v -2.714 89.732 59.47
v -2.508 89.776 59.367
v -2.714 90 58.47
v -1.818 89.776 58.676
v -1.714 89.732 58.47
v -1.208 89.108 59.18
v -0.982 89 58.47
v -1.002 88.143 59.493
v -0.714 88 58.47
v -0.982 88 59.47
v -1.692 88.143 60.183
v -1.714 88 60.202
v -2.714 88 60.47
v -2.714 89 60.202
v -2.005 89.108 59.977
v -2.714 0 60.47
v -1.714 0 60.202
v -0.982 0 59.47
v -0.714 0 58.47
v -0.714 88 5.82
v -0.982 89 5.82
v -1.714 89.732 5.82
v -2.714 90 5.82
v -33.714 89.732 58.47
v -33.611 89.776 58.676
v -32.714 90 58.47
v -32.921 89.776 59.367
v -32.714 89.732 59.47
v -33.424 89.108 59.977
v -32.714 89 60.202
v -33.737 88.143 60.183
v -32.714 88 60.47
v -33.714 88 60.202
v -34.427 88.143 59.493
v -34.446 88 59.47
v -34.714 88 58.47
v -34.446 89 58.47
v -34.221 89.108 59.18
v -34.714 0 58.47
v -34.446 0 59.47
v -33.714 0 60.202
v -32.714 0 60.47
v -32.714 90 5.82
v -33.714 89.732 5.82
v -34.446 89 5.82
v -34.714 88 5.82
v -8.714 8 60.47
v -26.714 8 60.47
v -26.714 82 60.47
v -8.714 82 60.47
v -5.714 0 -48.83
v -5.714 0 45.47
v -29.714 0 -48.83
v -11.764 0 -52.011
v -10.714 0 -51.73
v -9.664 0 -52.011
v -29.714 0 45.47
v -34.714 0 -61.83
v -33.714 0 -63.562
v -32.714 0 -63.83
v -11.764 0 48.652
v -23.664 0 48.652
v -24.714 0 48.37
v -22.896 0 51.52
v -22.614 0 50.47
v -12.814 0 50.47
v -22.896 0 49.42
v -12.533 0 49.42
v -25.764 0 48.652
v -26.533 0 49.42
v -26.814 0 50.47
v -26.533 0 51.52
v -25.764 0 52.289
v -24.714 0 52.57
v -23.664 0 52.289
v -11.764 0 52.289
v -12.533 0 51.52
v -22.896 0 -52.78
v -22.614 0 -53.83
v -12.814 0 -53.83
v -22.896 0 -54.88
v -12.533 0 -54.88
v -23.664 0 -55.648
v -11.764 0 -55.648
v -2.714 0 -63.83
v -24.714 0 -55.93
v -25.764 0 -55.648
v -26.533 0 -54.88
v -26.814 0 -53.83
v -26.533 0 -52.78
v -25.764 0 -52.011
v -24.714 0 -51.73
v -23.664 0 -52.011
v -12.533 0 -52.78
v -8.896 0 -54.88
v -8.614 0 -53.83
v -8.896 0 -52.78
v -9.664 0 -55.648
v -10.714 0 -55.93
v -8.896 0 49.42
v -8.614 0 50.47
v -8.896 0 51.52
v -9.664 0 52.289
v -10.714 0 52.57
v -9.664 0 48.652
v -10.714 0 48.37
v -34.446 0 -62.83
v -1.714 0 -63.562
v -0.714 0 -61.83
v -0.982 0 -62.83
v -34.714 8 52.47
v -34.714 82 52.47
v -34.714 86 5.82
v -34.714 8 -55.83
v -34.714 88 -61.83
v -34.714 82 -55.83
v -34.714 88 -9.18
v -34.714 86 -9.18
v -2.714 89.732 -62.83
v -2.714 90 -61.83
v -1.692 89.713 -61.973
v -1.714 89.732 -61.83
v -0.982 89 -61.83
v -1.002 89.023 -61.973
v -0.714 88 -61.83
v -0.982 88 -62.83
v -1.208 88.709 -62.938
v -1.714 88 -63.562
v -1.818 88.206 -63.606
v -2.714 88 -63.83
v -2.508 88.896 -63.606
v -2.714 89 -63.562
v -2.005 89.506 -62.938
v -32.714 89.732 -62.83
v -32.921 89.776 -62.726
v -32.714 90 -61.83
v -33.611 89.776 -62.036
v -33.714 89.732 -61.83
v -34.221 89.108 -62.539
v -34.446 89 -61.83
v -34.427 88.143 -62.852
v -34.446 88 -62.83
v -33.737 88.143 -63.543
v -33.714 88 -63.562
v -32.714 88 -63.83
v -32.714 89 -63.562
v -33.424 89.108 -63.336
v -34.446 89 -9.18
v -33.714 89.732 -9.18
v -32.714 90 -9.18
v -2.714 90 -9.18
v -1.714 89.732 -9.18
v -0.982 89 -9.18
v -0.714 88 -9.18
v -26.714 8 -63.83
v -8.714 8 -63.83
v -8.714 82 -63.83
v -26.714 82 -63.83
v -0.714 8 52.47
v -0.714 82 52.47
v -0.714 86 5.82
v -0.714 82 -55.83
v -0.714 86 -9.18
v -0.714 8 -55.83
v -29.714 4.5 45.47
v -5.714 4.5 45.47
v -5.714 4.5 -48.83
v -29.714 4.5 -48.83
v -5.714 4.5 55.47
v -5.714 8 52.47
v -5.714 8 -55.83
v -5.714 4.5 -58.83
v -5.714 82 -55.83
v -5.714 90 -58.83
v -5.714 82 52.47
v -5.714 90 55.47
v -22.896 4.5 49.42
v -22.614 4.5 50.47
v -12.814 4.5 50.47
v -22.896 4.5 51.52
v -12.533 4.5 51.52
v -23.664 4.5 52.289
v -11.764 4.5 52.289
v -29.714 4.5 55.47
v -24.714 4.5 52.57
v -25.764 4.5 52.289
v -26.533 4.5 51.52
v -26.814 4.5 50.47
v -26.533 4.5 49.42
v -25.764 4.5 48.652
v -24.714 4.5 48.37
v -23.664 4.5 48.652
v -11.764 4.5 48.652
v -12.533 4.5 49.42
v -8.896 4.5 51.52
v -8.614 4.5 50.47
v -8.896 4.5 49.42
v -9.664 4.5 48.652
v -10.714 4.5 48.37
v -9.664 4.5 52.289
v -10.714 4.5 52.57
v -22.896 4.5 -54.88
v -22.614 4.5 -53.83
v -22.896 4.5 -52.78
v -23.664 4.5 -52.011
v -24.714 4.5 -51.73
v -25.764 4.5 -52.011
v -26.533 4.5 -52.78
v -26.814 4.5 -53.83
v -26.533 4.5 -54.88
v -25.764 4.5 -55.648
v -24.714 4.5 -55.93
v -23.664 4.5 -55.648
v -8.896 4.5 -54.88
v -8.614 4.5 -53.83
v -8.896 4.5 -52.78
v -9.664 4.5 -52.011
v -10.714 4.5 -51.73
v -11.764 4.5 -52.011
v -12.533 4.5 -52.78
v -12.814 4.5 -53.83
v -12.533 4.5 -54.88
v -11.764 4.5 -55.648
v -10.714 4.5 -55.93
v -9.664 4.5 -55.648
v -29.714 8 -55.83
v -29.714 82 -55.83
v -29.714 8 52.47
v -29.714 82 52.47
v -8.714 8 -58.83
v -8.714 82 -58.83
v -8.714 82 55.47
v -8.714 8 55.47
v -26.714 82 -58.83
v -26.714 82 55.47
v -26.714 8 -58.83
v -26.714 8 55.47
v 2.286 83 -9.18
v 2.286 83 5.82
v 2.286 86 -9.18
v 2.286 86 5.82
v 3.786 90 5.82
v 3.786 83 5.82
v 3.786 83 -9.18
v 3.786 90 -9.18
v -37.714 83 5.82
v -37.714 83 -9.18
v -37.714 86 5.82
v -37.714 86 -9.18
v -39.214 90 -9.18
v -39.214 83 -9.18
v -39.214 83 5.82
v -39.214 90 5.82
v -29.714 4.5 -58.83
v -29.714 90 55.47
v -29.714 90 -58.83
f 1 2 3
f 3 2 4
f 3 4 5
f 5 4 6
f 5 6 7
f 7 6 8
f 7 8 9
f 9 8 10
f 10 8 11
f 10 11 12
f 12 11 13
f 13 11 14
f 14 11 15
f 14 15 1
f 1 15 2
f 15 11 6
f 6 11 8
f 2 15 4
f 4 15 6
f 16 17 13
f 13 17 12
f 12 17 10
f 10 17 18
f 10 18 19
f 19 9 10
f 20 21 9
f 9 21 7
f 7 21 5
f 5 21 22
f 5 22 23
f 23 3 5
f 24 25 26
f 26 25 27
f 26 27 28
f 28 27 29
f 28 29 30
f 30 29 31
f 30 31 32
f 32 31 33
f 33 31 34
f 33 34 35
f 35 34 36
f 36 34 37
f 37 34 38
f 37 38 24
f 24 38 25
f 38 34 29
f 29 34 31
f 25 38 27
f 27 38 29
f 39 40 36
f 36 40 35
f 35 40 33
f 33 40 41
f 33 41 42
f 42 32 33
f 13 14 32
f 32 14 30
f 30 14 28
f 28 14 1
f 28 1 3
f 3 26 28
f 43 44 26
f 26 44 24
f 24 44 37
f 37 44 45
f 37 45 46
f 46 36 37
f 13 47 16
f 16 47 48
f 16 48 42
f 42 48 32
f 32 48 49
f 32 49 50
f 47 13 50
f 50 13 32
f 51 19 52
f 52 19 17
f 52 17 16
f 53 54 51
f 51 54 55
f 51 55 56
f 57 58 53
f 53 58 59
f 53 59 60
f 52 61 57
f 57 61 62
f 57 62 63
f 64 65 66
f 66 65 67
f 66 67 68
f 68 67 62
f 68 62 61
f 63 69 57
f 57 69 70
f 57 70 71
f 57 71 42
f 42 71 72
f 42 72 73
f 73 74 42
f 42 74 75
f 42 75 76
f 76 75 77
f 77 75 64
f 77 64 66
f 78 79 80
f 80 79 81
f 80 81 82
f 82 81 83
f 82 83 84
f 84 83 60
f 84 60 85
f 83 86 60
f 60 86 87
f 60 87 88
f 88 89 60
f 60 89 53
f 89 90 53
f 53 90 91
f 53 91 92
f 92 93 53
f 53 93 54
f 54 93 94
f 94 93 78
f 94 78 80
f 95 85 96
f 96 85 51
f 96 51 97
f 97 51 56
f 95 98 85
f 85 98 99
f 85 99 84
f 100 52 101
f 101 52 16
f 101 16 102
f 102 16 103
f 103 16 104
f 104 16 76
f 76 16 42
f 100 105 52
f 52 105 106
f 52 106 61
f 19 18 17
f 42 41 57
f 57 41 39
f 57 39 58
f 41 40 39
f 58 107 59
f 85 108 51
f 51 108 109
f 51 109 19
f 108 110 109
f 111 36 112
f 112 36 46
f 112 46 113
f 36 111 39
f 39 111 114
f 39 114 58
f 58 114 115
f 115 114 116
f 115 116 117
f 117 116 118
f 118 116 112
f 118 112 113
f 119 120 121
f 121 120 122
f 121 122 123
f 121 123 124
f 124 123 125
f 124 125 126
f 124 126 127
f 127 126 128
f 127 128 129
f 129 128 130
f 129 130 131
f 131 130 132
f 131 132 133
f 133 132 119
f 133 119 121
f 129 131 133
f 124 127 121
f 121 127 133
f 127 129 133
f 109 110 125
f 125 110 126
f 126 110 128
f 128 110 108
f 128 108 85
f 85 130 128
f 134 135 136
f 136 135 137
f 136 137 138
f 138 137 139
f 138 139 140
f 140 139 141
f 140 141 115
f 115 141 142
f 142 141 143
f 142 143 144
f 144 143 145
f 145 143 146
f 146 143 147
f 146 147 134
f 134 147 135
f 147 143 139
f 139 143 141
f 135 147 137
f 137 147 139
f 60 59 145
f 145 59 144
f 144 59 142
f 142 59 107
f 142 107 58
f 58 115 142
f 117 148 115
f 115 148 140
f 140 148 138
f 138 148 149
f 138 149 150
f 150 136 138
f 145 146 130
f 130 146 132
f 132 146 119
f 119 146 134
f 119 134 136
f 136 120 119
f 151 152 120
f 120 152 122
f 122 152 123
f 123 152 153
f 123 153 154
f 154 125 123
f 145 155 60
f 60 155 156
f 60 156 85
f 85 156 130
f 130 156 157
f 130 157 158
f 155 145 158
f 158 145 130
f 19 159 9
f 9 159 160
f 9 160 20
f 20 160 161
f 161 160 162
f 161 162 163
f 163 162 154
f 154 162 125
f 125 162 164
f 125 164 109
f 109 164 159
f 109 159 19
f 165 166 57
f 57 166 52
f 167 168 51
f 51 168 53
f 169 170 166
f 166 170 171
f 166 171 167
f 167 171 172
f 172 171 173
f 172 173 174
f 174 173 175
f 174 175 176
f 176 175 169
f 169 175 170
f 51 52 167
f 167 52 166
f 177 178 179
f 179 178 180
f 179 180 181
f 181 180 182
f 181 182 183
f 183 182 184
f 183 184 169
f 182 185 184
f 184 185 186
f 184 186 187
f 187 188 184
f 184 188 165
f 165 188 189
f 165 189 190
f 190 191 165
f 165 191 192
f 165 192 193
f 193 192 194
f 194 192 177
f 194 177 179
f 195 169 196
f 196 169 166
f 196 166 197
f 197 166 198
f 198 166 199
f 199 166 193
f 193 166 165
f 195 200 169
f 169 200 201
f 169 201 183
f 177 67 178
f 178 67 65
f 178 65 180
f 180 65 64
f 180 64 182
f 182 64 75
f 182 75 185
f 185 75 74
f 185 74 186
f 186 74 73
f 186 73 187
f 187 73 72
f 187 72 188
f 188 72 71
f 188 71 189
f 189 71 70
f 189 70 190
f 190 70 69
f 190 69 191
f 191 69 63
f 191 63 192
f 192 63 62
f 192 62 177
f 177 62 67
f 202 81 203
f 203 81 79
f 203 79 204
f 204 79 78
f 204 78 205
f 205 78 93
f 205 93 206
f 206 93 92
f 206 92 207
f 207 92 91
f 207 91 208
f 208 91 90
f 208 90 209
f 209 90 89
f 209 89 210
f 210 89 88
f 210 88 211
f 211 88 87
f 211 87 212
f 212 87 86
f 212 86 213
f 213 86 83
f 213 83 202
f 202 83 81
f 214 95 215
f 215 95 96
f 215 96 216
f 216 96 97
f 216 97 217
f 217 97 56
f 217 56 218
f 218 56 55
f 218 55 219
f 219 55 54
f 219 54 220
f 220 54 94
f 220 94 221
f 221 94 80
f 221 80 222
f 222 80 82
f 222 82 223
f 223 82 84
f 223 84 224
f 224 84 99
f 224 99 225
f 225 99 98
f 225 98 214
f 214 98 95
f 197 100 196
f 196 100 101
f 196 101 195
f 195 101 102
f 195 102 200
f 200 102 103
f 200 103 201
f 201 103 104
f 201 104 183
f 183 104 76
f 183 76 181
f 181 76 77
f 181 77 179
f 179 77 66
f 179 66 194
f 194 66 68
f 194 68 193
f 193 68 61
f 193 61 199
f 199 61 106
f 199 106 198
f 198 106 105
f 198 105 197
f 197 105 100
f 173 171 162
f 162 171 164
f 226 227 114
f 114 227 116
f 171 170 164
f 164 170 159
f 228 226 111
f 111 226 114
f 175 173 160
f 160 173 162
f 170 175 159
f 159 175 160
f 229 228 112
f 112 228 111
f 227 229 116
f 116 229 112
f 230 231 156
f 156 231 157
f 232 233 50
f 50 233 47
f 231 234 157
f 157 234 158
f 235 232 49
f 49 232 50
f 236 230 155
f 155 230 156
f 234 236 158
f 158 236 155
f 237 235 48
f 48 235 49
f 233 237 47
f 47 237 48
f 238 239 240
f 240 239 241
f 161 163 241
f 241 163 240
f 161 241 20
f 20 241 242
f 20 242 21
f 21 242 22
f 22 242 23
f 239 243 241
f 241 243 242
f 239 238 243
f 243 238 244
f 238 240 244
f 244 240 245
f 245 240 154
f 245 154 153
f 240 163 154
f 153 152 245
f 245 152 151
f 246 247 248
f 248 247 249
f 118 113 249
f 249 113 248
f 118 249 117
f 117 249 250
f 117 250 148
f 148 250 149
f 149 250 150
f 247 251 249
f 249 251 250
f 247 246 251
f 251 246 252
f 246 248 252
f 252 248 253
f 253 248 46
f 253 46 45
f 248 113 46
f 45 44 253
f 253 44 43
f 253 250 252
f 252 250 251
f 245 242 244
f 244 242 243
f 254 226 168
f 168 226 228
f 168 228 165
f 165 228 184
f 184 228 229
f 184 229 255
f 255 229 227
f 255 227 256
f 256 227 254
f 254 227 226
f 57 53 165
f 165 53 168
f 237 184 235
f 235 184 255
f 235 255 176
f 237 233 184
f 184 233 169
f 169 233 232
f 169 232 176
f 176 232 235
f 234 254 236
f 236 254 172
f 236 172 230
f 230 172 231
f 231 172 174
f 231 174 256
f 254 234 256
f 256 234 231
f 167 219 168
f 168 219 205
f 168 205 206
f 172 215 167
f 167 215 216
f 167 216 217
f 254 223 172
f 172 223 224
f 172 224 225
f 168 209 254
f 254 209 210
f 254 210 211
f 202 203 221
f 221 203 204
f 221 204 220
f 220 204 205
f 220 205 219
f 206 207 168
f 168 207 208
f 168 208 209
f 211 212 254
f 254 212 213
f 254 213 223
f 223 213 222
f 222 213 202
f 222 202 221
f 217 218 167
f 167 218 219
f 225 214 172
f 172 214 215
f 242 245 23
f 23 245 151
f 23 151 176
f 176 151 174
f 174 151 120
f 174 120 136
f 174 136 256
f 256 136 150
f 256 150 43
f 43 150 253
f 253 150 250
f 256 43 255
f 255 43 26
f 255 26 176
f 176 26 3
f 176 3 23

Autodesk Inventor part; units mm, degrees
ref_plane "YZ Plane" through (0, 0, 0) normal (1, 0, 0) x (0, 1, 0)
ref_plane "XZ Plane" through (0, 0, 0) normal (0, 1, 0) x (-1, 0, 0)
ref_plane "XY Plane" through (0, 0, 0) normal (0, 0, 1) x (1, 0, 0)
sketch "Sketch1" plane through (0, 0, 0) normal (0, 1, 0) x (-1, 0, 0)
  point P0 (0, 0)
sketch "Sketch2" plane through (0, 0, 0) normal (0, 1, 0) x (-1, 0, 0)
  line L0 (34.7144, 60.4703) -> (0.7144, 60.4703)
  line L1 (0.7144, 60.4703) -> (0.7144, -63.8297)
  line L2 (0.7144, -63.8297) -> (34.7144, -63.8297)
  line L3 (34.7144, -63.8297) -> (34.7144, 60.4703)
  point P0 (0, 0)
  dimension "d0" = 124.3
  dimension "d1" = 34
extrude "Extrusion1" add sketch "Sketch2" along normal blind 90
sketch "Sketch3" plane through (0, 90, 0) normal (0, 1, 0) x (1, 0, 0)
  line L0 (-34.7144, -60.4703) -> (-0.7144, -60.4703) construction
  line L1 (-0.7144, -60.4703) -> (-0.7144, 63.8297) construction
  line L2 (-0.7144, 63.8297) -> (-34.7144, 63.8297) construction
  line L3 (-34.7144, 63.8297) -> (-34.7144, -60.4703) construction
  line L4 (-29.7144, 58.8297) -> (-5.7144, 58.8297)
  line L5 (-5.7144, 58.8297) -> (-5.7144, -55.4703)
  line L6 (-5.7144, -55.4703) -> (-29.7144, -55.4703)
  line L7 (-29.7144, -55.4703) -> (-29.7144, 58.8297)
  point P0 (0, 0)
  dimension "d4" = 114.3
  dimension "d5" = 24
  dimension "d6" = 5
  dimension "d7" = 5
  dimension "d8" = 5
  dimension "d9" = 5
extrude "Extrusion2" cut sketch "Sketch3" against normal blind 85.5
sketch "Sketch4" plane through (-0.7144, 0, 60.4703) normal (1, 0, 0) x (0, 0, -1)
  line L0 (124.3, 0) -> (124.3, 90) construction
  line L1 (0, 90) -> (124.3, 90) construction
  line L2 (54.65, 90) -> (69.65, 90)
  line L3 (69.65, 90) -> (69.65, 83)
  line L4 (69.65, 83) -> (54.65, 83)
  line L5 (54.65, 83) -> (54.65, 90)
  point P0 (60.4703, 0)
  dimension "d12" = 15
  dimension "d13" = 7
  dimension "d14" = 0
  dimension "d15" = 54.65
extrude "Extrusion3" add sketch "Sketch4" along normal blind 4.5
sketch "Sketch5" plane through (-34.7144, 0, -63.8297) normal (-1, 0, 0) x (0, 0, 1)
  line L0 (124.3, 0) -> (124.3, 90) construction
  line L1 (0, 90) -> (124.3, 90) construction
  line L2 (54.65, 90) -> (69.65, 90)
  line L3 (69.65, 90) -> (69.65, 83)
  line L4 (69.65, 83) -> (54.65, 83)
  line L5 (54.65, 83) -> (54.65, 90)
  point P0 (63.8297, 0)
  dimension "d18" = 7
  dimension "d19" = 15
  dimension "d20" = 0
  dimension "d21" = 54.65
extrude "Extrusion4" add sketch "Sketch5" along normal blind 4.5
sketch "Sketch6" plane through (-34.7144, 83, -9.1797) normal (0, -1, 0) x (1, 0, 0)
  line L0 (0, 15) -> (0, 0) construction
  line L1 (0, 15) -> (-4.5, 15) construction
  line L2 (-3, 0) -> (0, 0)
  line L3 (0, 0) -> (0, 15)
  line L4 (0, 15) -> (-3, 15)
  line L5 (-3, 15) -> (-3, 0)
  point P0 (34.7144, 9.1797)
  dimension "d24" = 15
  dimension "d25" = 3
  dimension "d26" = 0
  dimension "d27" = 0
extrude "Extrusion5" cut sketch "Sketch6" against normal blind 3
sketch "Sketch7" plane through (-0.7144, 83, -9.1797) normal (0, -1, 0) x (1, 0, 0)
  line L0 (0, 0) -> (0, 15) construction
  line L1 (0, 15) -> (4.5, 15) construction
  line L2 (0, 15) -> (3, 15)
  line L3 (3, 15) -> (3, 0)
  line L4 (3, 0) -> (0, 0)
  line L5 (0, 0) -> (0, 15)
  point P0 (0.7144, 9.1797)
  dimension "d30" = 15
  dimension "d31" = 3
  dimension "d32" = 0
  dimension "d33" = 0
extrude "Extrusion6" cut sketch "Sketch7" against normal blind 3
sketch "Sketch8" plane through (-34.7144, 0, 60.4703) normal (0, 0, 1) x (1, 0, 0)
  line L0 (0, 0) -> (34, 0) construction
  line L1 (34, 0) -> (34, 90) construction
  line L2 (0, 90) -> (34, 90) construction
  line L3 (0, 0) -> (0, 90) construction
  line L4 (8, 82) -> (26, 82)
  line L5 (26, 82) -> (26, 8)
  line L6 (26, 8) -> (8, 8)
  line L7 (8, 8) -> (8, 82)
  point P0 (34.7144, 0)
  dimension "d38" = 8
  dimension "d39" = 8
  dimension "d84" = 8
  dimension "d85" = 8
extrude "Extrusion7" cut sketch "Sketch8" against normal blind 124.3
sketch "Sketch9" plane through (-0.7144, 0, 60.4703) normal (1, 0, 0) x (0, 0, -1)
  line L0 (0, 0) -> (0, 90) construction
  line L1 (0, 0) -> (124.3, 0) construction
  line L2 (124.3, 0) -> (124.3, 90) construction
  line L3 (69.65, 90) -> (124.3, 90) construction
  line L4 (8, 82) -> (116.3, 82)
  line L5 (116.3, 82) -> (116.3, 8)
  line L6 (116.3, 8) -> (8, 8)
  line L7 (8, 8) -> (8, 82)
  point P0 (60.4703, 0)
  dimension "d46" = 8
  dimension "d48" = 8
  dimension "d82" = 8
  dimension "d83" = 8
extrude "Extrusion8" cut sketch "Sketch9" against normal blind 34
sketch "Sketch11" plane through (0, 0, 0) normal (0, -1, 0) x (1, 0, 0)
  line L0 (-34.7144, 60.4703) -> (-0.7144, 60.4703) construction
  line L1 (-34.7144, -63.8297) -> (-34.7144, 60.4703) construction
  line L2 (-0.7144, -63.8297) -> (-34.7144, -63.8297) construction
  line L3 (-0.7144, 60.4703) -> (-0.7144, -63.8297) construction
  circle A0 centre (-24.7144, -53.8297) radius 2.1
  circle A1 centre (-10.7144, -53.8297) radius 2.1
  circle A2 centre (-24.7144, 50.4703) radius 2.1
  circle A3 centre (-10.7144, 50.4703) radius 2.1
  line L4 (-29.7144, -48.8297) -> (-5.7144, -48.8297)
  line L5 (-5.7144, -48.8297) -> (-5.7144, 45.4703)
  line L6 (-5.7144, 45.4703) -> (-29.7144, 45.4703)
  line L7 (-29.7144, 45.4703) -> (-29.7144, -48.8297)
  point P0 (0, 0)
  dimension "d52" = 4.2
  dimension "d53" = 10
  dimension "d54" = 10
  dimension "d55" = 4.2
  dimension "d56" = 10
  dimension "d57" = 10
  dimension "d58" = 4.2
  dimension "d59" = 10
  dimension "d60" = 10
  dimension "d61" = 4.2
  dimension "d62" = 10
  dimension "d63" = 10
  dimension "d66" = 94.3
  dimension "d67" = 24
  dimension "d68" = 5
  dimension "d69" = 5
  dimension "d70" = 5
  dimension "d71" = 5
extrude "Extrusion9" cut sketch "Sketch11" against normal blind 5 contours A0 | A1 | A2 | A3
sketch "Sketch12" plane through (0, 0, 0) normal (0, -1, 0) x (1, 0, 0)
  circle A0 centre (-24.7144, 50.4703) radius 2.1 construction
  circle A1 centre (-24.7144, -53.8297) radius 2.1 construction
  line L0 (-34.7144, -63.8297) -> (-34.7144, 60.4703) construction
  line L1 (-0.7144, 60.4703) -> (-0.7144, -63.8297) construction
  line L2 (-29.7144, -48.8297) -> (-5.7144, -48.8297)
  line L3 (-5.7144, -48.8297) -> (-5.7144, 45.4703)
  line L4 (-5.7144, 45.4703) -> (-29.7144, 45.4703)
  line L5 (-29.7144, 45.4703) -> (-29.7144, -48.8297)
  point P0 (0, 0)
  dimension "d72" = 94.3
  dimension "d73" = 24
  dimension "d74" = 5
  dimension "d75" = 5
  dimension "d76" = 5
  dimension "d77" = 5
extrude "Extrusion10" cut sketch "Sketch12" against normal blind 5
fillet "Fillet1" radius 2 10 edges at (-34.7144, 90, -36.5047) (-34.7144, 90, 33.1453) (-17.7144, 90, 60.4703) (-0.7144, 90, 33.1453) (-0.7144, 90, -36.5047) (-17.7144, 90, -63.8297) (-34.7144, 45, 60.4703) (-0.7144, 45, 60.4703) (-0.7144, 45, -63.8297) (-34.7144, 45, -63.8297)
equation "\"d38\" = d84"
equation "\"d39\" = d84"
equation "\"d85\" = d84"
equation "\"d48\" = d46"
equation "\"d82\" = d48"
equation "\"d83\" = d46"
equation "\"d52\" = d55"
equation "\"d55\" = d61"
equation "\"d58\" = d61"
properties part number "Battery Case2"
